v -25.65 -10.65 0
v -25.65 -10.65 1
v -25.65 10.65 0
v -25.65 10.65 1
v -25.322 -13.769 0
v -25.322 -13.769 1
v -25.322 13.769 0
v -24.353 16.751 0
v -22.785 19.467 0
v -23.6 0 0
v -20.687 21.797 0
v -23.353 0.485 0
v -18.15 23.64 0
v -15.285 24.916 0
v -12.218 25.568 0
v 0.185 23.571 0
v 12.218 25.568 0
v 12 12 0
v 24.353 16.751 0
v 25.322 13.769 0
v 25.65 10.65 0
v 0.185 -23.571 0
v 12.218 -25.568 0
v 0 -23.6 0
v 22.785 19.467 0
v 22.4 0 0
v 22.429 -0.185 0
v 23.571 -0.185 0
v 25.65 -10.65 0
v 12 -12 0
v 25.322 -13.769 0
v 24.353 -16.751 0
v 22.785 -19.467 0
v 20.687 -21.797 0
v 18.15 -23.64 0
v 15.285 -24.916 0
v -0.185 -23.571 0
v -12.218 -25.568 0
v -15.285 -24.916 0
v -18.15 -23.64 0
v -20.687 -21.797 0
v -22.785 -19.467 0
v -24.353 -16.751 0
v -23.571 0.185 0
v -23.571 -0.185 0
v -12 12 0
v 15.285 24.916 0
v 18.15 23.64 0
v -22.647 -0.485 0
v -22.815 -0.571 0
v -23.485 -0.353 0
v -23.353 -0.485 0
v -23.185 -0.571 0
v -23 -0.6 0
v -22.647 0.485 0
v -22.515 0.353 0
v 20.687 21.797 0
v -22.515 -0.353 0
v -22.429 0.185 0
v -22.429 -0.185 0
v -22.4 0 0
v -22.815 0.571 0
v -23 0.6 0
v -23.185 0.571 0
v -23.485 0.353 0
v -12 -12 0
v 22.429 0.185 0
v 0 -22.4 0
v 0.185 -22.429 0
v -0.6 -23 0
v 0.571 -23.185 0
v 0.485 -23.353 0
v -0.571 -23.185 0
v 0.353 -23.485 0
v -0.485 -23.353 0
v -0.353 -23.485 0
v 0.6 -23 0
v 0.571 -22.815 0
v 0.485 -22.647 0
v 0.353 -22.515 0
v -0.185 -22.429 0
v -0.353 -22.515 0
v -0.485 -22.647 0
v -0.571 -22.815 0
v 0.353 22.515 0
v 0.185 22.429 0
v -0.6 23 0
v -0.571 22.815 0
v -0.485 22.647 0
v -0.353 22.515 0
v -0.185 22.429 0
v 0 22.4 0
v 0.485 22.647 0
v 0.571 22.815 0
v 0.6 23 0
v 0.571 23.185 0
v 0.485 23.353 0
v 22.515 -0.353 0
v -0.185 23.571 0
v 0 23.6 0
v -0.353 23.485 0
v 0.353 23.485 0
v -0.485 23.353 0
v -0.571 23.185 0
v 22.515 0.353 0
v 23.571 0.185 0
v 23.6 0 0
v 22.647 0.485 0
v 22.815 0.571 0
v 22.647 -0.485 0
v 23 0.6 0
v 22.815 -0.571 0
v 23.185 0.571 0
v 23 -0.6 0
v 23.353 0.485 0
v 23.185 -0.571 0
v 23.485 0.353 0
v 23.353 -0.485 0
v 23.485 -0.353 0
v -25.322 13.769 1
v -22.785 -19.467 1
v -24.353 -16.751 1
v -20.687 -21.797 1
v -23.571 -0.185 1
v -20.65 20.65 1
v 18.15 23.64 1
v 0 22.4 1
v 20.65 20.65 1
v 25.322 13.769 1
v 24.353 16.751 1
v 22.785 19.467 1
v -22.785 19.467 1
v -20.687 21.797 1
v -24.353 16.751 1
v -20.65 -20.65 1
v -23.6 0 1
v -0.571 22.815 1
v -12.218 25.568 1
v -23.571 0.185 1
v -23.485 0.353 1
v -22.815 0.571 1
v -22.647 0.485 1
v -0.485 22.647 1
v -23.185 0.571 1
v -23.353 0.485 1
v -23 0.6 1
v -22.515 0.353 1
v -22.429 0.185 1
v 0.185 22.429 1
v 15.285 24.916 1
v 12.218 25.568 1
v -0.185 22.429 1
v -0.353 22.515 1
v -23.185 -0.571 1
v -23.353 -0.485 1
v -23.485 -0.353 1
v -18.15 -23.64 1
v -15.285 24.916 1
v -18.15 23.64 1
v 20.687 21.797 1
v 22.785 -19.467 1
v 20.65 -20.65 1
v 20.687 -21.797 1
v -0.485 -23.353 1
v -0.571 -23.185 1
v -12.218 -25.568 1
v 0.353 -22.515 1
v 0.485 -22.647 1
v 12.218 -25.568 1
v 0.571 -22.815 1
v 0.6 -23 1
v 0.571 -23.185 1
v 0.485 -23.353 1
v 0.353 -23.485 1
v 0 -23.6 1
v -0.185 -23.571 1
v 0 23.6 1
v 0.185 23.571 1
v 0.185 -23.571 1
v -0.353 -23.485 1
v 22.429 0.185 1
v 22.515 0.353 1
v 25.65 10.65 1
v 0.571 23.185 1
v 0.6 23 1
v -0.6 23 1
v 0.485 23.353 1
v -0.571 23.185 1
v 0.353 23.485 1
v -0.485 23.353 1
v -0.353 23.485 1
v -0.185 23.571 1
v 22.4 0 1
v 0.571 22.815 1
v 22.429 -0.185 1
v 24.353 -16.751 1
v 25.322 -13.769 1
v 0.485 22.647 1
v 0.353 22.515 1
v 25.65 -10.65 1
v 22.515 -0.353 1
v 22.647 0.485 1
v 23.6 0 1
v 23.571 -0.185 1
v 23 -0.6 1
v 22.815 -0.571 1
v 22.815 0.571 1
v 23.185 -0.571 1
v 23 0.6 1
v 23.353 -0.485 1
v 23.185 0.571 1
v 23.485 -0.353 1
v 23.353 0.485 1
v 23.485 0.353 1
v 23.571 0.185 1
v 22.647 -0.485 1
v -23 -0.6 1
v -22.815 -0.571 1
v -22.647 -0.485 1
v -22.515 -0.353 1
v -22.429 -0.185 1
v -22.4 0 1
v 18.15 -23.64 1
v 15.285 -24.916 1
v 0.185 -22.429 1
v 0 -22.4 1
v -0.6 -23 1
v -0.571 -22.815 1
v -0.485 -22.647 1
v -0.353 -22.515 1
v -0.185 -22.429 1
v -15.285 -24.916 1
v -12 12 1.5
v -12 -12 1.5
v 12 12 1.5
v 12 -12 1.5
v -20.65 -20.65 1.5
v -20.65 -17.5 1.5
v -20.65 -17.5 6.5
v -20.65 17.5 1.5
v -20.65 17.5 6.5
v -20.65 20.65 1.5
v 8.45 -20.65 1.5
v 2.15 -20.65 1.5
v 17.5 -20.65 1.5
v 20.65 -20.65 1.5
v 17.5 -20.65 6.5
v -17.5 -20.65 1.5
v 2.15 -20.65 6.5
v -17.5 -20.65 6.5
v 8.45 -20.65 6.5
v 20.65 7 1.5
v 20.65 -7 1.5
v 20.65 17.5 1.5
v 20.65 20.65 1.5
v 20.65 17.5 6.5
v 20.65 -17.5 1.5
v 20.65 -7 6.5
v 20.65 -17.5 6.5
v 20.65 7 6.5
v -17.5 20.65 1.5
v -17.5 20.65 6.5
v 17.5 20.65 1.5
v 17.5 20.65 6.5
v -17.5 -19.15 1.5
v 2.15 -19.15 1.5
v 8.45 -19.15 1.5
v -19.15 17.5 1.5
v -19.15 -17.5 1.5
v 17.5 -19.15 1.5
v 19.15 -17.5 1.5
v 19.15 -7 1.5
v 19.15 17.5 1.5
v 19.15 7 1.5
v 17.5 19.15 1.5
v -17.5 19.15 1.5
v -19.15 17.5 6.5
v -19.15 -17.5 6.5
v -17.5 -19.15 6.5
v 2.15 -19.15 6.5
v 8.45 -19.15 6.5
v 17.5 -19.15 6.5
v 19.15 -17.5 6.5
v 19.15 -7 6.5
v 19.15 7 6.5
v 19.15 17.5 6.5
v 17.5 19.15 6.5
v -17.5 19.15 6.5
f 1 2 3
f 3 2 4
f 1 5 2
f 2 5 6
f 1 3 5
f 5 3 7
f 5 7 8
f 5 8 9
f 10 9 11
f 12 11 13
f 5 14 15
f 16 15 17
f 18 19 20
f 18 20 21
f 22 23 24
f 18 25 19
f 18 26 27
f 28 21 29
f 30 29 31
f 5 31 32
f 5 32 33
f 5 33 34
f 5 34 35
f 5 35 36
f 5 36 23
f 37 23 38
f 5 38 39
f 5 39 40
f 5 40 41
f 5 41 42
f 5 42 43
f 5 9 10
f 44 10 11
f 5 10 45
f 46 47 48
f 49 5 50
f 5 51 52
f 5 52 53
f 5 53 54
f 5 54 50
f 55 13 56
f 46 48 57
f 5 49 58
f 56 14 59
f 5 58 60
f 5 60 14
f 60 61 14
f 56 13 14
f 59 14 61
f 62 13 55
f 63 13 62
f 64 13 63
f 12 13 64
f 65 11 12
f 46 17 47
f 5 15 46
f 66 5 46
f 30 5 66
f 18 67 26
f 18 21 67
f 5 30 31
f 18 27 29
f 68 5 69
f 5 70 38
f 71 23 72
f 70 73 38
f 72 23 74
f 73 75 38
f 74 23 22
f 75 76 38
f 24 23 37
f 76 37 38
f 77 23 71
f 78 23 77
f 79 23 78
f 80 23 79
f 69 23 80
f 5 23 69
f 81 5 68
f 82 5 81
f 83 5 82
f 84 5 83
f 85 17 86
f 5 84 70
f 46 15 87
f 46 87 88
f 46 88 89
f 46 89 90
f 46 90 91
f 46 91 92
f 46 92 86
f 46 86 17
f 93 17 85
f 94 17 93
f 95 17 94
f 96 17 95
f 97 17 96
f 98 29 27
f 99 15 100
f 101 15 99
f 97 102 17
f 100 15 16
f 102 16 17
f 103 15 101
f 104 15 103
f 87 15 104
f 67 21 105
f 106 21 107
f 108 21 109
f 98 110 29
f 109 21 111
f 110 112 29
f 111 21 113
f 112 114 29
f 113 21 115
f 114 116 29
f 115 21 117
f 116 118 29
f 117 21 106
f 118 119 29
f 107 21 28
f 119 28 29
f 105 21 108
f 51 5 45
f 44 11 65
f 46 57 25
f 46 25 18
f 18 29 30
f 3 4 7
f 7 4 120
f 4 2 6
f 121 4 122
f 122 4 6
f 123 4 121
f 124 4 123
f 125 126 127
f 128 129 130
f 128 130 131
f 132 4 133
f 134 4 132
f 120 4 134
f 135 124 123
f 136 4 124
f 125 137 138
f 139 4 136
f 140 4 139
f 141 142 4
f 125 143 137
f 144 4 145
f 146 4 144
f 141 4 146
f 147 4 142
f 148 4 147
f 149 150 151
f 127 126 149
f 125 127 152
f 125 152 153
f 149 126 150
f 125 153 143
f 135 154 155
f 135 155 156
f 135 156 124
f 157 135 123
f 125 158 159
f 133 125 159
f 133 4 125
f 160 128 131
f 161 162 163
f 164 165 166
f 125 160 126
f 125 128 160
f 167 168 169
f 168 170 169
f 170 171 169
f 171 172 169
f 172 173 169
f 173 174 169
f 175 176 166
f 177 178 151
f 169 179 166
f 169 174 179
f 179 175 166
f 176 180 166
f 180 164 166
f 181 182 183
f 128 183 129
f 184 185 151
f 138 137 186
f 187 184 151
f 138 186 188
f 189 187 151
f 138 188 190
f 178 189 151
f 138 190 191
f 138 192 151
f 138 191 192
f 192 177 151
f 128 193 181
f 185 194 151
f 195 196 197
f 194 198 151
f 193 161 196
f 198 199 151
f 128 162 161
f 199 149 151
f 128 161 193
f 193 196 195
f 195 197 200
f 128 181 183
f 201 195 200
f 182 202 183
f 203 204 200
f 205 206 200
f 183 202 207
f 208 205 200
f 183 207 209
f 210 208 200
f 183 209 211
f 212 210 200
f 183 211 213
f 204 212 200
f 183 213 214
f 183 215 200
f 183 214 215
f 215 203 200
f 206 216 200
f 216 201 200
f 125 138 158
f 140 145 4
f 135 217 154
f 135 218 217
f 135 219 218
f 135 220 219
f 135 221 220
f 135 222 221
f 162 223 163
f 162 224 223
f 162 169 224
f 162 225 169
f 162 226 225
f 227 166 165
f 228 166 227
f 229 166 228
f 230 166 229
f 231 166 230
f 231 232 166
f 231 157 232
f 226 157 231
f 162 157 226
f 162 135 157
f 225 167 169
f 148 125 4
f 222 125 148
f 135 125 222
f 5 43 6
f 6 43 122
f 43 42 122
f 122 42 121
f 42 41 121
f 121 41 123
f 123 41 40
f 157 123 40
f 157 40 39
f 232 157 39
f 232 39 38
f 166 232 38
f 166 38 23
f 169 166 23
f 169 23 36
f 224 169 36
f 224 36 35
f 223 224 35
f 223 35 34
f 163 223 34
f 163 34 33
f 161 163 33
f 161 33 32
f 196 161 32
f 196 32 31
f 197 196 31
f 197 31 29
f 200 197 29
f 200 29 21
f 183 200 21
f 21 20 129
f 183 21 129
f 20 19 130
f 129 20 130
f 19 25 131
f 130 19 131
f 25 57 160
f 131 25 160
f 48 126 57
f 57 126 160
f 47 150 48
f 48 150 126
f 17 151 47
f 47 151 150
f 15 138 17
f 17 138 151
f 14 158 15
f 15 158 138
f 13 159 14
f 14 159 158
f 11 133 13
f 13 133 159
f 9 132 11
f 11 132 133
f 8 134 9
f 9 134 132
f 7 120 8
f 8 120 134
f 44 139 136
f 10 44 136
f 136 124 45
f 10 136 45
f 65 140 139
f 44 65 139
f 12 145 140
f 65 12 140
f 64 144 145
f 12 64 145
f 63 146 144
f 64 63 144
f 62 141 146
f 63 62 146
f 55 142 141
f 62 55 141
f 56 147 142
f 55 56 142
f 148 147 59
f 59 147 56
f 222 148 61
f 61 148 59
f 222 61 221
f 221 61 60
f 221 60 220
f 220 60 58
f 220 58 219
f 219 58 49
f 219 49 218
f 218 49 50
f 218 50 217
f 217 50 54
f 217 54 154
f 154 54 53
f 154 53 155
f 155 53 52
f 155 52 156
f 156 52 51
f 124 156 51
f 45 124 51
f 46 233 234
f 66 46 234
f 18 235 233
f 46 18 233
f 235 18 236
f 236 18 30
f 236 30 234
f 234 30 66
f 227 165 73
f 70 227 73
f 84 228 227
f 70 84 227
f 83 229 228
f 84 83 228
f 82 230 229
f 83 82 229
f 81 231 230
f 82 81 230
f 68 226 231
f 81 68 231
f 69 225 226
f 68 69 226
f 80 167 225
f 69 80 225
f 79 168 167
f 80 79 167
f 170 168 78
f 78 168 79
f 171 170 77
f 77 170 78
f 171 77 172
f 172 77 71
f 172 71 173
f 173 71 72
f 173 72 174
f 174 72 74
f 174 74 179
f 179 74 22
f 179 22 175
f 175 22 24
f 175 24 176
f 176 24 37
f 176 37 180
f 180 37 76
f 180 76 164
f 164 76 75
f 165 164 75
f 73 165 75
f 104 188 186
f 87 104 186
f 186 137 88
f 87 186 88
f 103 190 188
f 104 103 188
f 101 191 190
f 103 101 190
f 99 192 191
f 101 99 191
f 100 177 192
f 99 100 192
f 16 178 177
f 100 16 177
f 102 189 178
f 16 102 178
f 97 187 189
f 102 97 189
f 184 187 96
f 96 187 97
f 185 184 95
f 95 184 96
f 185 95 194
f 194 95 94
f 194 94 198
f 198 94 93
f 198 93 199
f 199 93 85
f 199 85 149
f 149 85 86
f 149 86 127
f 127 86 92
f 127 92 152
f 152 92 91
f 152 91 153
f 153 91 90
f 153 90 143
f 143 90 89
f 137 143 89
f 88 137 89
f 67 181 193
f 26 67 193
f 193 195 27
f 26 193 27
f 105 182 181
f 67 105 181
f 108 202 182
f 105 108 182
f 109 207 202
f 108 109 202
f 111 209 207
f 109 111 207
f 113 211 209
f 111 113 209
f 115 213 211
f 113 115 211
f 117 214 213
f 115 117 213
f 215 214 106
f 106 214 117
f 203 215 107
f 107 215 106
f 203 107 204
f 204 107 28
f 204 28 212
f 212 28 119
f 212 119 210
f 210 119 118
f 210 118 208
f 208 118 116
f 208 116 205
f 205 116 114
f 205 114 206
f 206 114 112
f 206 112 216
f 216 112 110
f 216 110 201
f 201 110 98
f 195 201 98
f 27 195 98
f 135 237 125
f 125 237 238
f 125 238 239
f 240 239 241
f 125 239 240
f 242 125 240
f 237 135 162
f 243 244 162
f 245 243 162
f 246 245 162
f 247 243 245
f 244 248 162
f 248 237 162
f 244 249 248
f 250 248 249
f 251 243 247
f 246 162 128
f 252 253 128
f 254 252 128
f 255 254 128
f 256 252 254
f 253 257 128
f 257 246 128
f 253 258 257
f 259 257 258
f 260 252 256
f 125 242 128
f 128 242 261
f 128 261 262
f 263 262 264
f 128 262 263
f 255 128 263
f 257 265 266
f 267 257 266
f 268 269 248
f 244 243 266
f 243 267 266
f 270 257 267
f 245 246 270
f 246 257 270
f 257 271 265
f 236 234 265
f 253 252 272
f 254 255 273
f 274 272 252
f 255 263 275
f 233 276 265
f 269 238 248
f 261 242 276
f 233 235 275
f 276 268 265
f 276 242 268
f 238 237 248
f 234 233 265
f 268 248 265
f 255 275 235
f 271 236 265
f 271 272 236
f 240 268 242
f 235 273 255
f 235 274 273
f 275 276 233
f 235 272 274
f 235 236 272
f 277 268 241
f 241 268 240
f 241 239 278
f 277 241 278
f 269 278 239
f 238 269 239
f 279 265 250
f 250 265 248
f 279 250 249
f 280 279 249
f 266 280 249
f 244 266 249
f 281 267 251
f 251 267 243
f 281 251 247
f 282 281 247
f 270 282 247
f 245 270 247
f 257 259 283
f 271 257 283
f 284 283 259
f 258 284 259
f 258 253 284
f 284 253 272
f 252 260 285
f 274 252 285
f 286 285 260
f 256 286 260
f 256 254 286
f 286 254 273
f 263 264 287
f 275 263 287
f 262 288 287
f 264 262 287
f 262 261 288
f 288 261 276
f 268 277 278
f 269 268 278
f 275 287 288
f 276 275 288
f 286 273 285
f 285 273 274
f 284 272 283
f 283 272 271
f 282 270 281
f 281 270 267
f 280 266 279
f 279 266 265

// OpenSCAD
wallthickness = 1.5;
bottom_height = 5;
board_width = 38.3;
board_length = 38.3;
mounthole_radius = 0.6;
mount_hole_offset = 23;
difference(){
	union(){
		translate([0,0,wallthickness / 2 + bottom_height / 2]) cube([board_width + wallthickness * 2,board_length + wallthickness * 2,bottom_height + wallthickness],center=true);
	minkowski() {
		translate([0,0,wallthickness / 4]) cube([board_width - 17,board_length - 17, wallthickness/2],center=true);
		cylinder(h=.25,r=15);
	}
	}
	translate([0,0,wallthickness + bottom_height / 2]) cube([board_width,board_length,bottom_height],center=true);
	translate([0,0,wallthickness / 2]) cube([24,24,wallthickness],center=true);

	translate([20,20,wallthickness + bottom_height / 2]) cube([5,5,bottom_height], center=true);
	translate([-20,-20,wallthickness + bottom_height / 2]) cube([5,5,bottom_height], center=true);
	translate([20,-20,wallthickness + bottom_height / 2]) cube([5,5,bottom_height], center=true);
	translate([-20,20,wallthickness + bottom_height / 2]) cube([5,5,bottom_height], center=true);

	translate([board_width / 2,0 ,wallthickness + bottom_height / 2]) cube([5,14,bottom_height], center=true);
	translate([(board_width / 2 - 17.0) + (6.3/2),-board_width / 2,wallthickness + bottom_height / 2]) cube([6.3,5,bottom_height], center=true);

	translate([mount_hole_offset,0,wallthickness/2]) cylinder(h=wallthickness, r=mounthole_radius,$fn=20,center=true);
	translate([0,mount_hole_offset,wallthickness/2]) cylinder(h=wallthickness, r=mounthole_radius,$fn=20,center=true);
	translate([-mount_hole_offset,0,wallthickness/2]) cylinder(h=wallthickness, r=mounthole_radius,$fn=20,center=true);
	translate([0,-mount_hole_offset,wallthickness/2]) cylinder(h=wallthickness, r=mounthole_radius,$fn=20,center=true);

}
